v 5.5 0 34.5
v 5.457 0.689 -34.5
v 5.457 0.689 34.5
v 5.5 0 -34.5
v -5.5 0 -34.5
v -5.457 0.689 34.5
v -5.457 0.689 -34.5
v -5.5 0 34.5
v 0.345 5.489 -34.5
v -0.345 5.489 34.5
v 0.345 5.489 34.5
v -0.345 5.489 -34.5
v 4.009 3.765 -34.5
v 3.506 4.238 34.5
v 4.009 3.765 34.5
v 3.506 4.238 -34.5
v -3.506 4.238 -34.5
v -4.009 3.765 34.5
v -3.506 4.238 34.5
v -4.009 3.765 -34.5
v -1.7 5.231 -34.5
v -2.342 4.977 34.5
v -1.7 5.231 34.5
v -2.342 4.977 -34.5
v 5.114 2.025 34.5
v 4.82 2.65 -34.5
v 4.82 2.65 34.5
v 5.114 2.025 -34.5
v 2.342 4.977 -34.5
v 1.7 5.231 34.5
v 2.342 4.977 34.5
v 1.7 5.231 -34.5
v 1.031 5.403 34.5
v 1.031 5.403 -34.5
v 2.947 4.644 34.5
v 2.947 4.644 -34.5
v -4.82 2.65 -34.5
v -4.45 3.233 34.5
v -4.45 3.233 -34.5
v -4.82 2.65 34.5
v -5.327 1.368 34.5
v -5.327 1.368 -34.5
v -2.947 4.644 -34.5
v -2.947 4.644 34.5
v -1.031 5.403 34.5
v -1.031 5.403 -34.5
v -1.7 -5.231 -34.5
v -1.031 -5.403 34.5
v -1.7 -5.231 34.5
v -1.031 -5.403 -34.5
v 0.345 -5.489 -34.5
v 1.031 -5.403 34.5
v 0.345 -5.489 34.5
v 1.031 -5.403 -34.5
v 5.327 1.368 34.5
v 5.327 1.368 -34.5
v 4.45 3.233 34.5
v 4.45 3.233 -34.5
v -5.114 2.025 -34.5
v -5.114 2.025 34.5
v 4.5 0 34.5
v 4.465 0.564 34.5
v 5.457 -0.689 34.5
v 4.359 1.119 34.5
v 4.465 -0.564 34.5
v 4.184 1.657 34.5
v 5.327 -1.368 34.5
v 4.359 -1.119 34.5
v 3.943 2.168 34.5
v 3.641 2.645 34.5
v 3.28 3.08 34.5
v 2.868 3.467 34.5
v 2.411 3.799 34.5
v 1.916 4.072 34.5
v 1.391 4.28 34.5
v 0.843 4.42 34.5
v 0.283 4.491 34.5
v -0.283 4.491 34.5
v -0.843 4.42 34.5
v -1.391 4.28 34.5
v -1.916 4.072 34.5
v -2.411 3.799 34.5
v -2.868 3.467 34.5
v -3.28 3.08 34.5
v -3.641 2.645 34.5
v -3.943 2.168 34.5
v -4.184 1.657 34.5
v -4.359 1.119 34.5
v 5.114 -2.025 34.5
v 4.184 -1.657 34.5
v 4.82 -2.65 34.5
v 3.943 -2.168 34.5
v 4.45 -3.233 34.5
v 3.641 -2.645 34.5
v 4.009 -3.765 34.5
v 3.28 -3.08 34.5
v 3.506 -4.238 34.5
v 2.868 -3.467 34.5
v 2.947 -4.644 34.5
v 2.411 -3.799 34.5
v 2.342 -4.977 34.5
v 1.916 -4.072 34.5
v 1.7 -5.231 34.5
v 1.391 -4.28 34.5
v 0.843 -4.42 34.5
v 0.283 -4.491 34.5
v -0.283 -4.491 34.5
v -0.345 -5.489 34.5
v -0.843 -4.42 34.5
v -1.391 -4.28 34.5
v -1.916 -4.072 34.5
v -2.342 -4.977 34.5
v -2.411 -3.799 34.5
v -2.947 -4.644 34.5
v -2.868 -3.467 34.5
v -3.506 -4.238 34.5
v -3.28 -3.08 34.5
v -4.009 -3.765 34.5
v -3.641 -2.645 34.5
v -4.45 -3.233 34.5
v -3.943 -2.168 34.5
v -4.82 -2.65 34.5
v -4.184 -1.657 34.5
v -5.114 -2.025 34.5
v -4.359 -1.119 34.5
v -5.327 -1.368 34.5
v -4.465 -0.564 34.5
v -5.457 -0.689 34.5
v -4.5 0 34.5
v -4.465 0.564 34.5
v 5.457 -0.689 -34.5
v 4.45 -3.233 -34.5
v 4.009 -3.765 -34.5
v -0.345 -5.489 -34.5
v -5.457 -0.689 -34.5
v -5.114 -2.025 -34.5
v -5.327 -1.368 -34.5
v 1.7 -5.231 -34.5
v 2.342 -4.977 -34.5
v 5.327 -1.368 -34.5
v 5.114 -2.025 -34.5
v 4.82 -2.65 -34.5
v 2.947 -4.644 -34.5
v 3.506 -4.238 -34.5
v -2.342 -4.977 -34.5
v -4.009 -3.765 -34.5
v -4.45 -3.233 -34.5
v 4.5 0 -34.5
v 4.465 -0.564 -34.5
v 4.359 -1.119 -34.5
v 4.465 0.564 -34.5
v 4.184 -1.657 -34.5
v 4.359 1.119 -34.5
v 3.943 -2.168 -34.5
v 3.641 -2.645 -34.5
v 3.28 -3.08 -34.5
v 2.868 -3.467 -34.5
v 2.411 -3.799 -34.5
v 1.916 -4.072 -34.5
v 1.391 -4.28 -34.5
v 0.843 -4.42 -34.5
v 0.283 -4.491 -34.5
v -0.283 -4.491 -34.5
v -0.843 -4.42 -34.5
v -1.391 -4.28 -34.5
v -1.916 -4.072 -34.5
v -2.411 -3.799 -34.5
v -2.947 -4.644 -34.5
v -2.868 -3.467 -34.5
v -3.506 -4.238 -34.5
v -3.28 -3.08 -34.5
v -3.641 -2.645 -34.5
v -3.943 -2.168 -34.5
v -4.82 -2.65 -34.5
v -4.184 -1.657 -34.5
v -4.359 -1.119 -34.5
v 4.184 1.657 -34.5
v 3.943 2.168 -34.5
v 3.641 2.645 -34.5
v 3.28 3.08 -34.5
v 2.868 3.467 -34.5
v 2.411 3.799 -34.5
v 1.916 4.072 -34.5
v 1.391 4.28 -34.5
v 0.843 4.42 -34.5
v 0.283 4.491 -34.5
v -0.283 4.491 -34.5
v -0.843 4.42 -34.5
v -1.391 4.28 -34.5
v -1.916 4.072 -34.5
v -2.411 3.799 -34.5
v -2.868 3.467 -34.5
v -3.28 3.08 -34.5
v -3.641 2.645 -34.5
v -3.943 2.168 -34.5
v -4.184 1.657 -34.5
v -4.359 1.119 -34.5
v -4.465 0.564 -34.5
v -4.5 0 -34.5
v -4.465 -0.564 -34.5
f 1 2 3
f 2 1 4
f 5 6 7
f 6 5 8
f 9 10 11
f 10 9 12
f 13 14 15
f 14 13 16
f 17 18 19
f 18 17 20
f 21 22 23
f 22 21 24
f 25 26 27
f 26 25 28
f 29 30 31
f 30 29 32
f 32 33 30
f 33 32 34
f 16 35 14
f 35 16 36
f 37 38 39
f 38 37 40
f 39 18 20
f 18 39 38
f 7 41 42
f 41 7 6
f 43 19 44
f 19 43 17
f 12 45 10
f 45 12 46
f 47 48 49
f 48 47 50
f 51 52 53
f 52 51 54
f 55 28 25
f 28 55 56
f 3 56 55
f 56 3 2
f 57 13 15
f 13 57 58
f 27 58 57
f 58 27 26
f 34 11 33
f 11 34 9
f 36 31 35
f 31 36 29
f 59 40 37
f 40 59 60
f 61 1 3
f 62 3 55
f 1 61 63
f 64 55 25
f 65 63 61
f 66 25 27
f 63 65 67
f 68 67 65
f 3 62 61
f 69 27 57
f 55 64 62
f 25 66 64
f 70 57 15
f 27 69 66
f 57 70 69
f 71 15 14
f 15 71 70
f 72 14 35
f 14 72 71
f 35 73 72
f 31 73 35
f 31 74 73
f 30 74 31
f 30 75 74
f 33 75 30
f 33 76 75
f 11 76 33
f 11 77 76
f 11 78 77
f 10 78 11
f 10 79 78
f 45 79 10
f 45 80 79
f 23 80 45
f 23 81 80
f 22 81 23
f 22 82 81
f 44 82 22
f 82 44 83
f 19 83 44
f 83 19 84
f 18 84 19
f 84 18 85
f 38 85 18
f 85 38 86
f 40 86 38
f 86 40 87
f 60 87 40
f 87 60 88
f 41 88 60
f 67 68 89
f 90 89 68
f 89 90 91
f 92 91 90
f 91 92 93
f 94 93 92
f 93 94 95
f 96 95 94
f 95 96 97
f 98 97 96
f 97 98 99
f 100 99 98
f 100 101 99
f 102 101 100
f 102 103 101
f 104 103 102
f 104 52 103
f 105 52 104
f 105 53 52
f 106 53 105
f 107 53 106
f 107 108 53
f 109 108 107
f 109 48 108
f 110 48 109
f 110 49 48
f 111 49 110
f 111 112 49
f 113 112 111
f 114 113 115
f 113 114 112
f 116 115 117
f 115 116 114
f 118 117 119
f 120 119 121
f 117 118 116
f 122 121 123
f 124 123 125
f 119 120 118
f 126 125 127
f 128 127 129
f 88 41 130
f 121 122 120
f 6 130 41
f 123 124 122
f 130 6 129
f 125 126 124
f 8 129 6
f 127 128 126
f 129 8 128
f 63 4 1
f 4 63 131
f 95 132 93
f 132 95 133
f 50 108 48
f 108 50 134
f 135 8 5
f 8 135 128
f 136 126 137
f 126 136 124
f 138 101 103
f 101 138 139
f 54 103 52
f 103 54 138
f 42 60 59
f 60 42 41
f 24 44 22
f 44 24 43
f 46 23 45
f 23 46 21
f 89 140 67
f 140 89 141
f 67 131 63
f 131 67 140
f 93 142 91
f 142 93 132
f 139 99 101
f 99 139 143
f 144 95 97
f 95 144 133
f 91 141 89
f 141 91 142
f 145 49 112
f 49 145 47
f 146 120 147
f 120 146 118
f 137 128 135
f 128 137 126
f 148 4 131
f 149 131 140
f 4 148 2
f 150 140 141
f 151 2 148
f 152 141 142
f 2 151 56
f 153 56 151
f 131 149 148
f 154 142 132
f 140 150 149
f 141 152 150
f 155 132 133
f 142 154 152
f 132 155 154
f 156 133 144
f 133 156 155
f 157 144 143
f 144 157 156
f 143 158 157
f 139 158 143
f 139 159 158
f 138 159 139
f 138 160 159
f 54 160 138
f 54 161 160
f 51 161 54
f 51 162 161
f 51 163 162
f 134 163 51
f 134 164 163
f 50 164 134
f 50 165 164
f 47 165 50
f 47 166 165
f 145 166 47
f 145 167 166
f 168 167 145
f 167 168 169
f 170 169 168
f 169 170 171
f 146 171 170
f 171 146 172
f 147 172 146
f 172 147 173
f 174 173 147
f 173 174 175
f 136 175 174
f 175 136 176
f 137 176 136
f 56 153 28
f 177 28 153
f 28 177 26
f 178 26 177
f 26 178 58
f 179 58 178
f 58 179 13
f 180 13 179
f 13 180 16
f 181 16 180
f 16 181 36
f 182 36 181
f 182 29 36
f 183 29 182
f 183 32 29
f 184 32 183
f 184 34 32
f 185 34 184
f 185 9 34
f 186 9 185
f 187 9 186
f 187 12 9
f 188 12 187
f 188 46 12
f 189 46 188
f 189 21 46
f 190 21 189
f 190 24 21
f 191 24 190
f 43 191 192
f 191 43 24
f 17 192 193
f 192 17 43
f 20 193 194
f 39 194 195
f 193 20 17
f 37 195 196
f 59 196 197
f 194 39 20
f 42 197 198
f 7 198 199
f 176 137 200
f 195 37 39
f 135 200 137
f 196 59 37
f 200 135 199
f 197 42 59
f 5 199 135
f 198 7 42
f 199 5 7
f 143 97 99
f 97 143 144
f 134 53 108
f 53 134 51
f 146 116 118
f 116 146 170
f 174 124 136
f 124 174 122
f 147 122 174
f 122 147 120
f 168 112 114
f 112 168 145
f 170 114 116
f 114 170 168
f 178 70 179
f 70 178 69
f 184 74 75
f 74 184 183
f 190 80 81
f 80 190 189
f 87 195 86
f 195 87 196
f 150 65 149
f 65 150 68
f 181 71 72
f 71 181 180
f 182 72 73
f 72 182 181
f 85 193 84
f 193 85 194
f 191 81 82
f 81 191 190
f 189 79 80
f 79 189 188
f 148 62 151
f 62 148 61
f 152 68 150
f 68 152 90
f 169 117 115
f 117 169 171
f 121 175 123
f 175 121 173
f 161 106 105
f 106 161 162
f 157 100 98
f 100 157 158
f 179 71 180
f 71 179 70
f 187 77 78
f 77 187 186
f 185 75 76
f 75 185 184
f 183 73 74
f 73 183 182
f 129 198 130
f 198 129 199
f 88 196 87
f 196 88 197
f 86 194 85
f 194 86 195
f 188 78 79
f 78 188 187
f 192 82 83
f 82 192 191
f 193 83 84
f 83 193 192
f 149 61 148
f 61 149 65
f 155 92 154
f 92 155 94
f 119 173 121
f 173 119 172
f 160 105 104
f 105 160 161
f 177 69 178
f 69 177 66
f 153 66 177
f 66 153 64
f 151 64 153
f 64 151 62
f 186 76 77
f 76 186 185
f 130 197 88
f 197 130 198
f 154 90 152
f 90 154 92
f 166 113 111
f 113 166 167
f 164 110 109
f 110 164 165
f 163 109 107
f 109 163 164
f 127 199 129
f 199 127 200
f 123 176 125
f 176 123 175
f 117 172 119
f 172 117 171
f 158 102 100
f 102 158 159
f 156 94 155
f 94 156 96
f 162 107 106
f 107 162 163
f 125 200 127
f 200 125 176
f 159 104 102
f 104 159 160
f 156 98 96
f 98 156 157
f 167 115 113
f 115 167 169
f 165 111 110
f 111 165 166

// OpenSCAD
$fn = 50;


difference() {
	union() {
		translate(v = [0, 0, -34.5000000000]) {
			cylinder(h = 69, r = 5.5000000000);
		}
	}
	union() {
		translate(v = [0, 0, -100.0000000000]) {
			cylinder(h = 200, r = 4.5000000000);
		}
	}
}
